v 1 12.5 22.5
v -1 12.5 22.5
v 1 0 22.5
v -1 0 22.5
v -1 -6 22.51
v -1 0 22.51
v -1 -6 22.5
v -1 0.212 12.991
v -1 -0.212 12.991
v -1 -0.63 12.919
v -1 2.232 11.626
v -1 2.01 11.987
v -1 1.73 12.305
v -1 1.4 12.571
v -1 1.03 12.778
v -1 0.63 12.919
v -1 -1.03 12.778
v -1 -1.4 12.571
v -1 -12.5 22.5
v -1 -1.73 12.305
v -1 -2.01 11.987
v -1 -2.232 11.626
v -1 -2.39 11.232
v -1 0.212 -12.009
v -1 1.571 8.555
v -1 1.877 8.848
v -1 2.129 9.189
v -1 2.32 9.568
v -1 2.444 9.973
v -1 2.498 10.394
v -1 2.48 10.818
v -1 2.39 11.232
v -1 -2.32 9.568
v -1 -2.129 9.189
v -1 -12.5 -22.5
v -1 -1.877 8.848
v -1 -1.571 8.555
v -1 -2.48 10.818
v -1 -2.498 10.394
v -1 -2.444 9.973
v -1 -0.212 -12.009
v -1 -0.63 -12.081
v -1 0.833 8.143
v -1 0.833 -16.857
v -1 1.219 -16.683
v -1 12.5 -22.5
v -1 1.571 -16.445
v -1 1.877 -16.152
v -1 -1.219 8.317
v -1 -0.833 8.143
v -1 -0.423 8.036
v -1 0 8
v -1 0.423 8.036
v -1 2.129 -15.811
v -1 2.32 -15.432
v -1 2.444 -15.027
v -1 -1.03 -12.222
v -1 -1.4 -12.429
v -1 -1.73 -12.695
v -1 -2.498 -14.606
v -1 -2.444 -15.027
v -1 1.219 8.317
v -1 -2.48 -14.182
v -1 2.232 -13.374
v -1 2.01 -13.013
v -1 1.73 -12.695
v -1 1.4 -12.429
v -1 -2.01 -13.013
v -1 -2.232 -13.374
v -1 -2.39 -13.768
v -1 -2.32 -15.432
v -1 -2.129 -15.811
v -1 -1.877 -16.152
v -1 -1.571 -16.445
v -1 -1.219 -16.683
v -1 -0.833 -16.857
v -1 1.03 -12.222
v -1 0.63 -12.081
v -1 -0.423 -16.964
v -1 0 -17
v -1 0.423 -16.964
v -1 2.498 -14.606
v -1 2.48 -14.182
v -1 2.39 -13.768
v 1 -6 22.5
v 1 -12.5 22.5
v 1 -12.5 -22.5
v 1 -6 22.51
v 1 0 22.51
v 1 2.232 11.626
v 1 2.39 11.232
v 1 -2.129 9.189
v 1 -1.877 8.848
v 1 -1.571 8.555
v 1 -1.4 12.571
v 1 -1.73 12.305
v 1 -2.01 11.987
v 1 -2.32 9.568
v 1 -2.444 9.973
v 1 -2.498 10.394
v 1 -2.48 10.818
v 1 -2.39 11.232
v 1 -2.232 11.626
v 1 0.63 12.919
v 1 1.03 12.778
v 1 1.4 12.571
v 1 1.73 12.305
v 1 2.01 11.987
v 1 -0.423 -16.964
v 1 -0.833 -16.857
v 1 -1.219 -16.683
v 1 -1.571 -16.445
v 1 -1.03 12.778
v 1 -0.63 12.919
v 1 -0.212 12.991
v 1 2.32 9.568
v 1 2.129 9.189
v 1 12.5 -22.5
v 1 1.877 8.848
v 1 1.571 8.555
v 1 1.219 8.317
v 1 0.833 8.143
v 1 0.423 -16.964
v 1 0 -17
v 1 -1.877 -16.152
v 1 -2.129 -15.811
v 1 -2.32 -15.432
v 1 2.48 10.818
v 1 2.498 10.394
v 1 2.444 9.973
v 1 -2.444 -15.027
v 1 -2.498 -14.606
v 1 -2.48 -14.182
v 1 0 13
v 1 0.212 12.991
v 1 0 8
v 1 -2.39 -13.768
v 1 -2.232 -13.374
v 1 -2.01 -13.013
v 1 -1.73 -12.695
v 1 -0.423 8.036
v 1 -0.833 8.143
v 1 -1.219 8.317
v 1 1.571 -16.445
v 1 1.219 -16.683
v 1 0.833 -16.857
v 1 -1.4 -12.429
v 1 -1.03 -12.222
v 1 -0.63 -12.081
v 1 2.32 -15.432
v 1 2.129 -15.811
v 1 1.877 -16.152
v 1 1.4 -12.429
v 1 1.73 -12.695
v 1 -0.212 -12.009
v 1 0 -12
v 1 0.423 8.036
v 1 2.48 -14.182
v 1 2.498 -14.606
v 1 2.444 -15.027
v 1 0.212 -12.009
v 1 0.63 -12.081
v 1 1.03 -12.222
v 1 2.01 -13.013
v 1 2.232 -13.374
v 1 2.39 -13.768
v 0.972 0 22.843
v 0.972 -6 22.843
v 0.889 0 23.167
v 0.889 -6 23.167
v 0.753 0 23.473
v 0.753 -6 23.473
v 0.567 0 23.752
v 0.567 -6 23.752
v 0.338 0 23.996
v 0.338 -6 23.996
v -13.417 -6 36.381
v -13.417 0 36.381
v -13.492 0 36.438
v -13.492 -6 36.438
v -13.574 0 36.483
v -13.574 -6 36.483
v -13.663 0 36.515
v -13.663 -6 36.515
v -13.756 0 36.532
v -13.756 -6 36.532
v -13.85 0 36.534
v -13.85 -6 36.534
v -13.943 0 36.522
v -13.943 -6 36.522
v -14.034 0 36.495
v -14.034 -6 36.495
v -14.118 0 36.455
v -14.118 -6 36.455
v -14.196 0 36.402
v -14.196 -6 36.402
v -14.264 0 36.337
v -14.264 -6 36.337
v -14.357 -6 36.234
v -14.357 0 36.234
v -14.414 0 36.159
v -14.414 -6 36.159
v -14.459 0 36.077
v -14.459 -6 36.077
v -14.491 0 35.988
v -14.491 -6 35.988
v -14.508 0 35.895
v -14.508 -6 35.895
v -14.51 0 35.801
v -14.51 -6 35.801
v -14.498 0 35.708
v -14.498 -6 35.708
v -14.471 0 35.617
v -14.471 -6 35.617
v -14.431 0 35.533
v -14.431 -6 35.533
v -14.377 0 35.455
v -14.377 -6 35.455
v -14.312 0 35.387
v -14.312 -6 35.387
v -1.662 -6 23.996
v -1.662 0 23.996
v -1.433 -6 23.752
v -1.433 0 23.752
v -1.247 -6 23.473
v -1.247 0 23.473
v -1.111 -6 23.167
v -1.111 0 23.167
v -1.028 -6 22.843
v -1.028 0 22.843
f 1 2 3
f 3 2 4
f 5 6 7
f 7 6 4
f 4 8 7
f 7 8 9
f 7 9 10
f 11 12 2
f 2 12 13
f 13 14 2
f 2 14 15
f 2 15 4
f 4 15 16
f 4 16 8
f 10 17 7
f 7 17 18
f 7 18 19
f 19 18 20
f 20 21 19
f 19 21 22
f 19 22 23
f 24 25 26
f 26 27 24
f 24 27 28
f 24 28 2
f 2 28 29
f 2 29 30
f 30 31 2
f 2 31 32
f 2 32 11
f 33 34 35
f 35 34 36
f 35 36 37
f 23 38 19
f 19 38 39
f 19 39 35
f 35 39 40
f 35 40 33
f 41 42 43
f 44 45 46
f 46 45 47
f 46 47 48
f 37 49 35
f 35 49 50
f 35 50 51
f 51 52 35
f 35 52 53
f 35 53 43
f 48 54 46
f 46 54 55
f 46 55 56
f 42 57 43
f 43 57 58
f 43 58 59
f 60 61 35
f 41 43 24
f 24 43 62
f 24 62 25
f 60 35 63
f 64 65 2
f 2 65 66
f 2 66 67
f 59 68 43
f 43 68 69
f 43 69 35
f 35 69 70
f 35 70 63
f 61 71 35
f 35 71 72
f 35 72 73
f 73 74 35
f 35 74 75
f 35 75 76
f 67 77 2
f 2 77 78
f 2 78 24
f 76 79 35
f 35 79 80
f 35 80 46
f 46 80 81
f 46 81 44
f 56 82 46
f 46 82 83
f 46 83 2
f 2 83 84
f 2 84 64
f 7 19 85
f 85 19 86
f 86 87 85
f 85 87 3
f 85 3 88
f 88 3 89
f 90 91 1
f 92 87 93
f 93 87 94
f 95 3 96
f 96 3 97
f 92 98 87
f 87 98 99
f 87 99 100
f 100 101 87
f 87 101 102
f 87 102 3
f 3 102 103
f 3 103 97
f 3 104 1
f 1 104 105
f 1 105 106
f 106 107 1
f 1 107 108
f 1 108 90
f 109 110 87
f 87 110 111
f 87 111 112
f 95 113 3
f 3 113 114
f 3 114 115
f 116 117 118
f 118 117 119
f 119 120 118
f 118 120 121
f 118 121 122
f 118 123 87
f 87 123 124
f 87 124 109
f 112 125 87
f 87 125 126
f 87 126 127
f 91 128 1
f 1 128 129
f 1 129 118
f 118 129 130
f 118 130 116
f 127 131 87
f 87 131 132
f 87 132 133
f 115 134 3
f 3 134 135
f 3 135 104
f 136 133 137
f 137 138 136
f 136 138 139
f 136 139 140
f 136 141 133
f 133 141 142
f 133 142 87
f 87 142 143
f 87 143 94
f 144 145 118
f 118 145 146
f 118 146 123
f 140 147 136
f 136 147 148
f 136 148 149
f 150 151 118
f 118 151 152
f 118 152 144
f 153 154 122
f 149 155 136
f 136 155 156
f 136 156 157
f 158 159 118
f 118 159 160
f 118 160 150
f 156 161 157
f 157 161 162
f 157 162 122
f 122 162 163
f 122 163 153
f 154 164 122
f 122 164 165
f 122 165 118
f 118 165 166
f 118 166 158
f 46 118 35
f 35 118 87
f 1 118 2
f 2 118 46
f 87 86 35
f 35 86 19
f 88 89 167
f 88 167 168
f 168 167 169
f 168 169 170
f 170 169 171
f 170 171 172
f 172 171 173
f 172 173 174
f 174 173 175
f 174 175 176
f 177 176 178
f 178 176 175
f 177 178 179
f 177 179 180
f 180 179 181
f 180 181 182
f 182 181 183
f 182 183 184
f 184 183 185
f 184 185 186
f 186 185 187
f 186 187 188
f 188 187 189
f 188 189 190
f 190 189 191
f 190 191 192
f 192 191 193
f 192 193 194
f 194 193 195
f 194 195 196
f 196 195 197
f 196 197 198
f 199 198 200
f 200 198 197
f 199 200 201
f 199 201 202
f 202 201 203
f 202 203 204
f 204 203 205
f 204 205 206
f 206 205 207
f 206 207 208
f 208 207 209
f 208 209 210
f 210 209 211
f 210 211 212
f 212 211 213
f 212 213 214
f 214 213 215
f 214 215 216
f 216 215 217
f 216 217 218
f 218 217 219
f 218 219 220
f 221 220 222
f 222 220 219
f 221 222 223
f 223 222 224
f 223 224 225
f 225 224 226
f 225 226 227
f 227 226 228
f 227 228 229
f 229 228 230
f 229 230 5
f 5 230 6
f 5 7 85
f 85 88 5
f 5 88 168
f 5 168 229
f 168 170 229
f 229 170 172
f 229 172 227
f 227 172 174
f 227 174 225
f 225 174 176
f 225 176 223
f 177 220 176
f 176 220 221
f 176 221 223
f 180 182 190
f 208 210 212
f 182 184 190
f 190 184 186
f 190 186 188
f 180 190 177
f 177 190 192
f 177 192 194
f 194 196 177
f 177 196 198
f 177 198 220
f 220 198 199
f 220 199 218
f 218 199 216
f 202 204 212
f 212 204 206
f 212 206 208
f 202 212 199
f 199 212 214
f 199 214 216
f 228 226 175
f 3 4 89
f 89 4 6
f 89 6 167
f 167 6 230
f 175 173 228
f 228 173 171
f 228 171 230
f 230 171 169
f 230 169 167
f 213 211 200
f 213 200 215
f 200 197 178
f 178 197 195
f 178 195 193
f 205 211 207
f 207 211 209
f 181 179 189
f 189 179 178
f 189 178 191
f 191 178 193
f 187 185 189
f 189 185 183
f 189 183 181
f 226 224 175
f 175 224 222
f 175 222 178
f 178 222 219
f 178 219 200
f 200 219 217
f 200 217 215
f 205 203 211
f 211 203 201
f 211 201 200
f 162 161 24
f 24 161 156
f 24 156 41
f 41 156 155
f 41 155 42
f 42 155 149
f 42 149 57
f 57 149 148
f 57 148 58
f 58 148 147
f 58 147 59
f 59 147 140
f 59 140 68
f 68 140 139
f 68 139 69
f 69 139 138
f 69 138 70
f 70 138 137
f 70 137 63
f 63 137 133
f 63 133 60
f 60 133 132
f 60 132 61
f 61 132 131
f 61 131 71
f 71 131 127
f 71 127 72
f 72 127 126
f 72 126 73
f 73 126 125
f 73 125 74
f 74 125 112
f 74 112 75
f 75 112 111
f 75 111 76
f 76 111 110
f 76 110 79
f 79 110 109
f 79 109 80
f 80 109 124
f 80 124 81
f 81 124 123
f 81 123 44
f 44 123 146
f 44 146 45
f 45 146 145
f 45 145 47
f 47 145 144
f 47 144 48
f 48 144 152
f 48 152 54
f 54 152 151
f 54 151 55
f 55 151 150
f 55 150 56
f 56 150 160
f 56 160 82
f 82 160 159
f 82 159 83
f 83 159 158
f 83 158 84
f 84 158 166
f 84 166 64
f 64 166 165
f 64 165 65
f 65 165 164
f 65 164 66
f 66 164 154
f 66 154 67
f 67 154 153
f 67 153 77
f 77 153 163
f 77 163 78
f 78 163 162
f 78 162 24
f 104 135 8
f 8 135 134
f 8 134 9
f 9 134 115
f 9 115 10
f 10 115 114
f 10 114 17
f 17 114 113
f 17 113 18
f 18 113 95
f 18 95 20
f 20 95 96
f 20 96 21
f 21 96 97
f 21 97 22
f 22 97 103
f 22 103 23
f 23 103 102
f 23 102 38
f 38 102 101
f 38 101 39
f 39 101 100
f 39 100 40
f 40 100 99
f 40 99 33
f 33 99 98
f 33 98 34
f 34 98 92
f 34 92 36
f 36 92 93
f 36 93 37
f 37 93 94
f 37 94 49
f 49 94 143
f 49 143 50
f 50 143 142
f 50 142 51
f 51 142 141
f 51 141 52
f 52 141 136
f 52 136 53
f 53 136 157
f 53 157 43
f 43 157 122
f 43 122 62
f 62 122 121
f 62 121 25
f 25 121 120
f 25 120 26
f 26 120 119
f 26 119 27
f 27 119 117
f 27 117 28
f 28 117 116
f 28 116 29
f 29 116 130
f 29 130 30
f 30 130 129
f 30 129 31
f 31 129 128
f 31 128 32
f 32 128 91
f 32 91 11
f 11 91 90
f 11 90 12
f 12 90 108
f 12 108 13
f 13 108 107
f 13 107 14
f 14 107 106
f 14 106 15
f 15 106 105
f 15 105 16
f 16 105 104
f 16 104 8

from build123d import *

# Parameters (mm, degrees)
SKETCH1_W           = 2
SKETCH1_H           = 45
BOSS_EXTRUDE1_DEPTH = 12.5
BOSS_EXTRUDE2_START = -12.5
BOSS_EXTRUDE2_DEPTH = 6
SKETCH3_R           = 2.5
CUT_EXTRUDE1_DEPTH  = 3


with BuildPart() as part:
    # Sketch1 → Boss-Extrude1 (new, symmetric)
    with BuildSketch(Plane(origin=(0, 0, 0), x_dir=(1, 0, 0), z_dir=(0, 1, 0))):
        Rectangle(SKETCH1_W, SKETCH1_H)
    extrude(amount=BOSS_EXTRUDE1_DEPTH, both=True)

    # Sketch2 → Boss-Extrude2 (add)
    with BuildSketch(Plane(origin=(0, 12.5, 0), x_dir=(1, 0, 0), z_dir=(0, 1, 0)).offset(BOSS_EXTRUDE2_START)):
        with BuildLine():
            Line((1, -22.5), (1, -22.509542629))
            ThreePointArc((1, -22.509542629), (0.827090915, -23.323015916), (0.338261213, -23.99583228))
            Line((0.338261213, -23.99583228), (-13.417009614, -36.381133763))
            ThreePointArc((-13.417009614, -36.381133763), (-13.849889552, -36.534424589), (-14.264374873, -36.336725232))
            Line((-14.264374873, -36.336725232), (-14.356889682, -36.233977127))
            ThreePointArc((-14.356889682, -36.233977127), (-14.510180508, -35.80109719), (-14.312481151, -35.386611868))
            Line((-14.312481151, -35.386611868), (-1.661738787, -23.99583228))
            ThreePointArc((-1.661738787, -23.99583228), (-1.172909085, -23.323015916), (-1, -22.509542629))
            Line((-1, -22.509542629), (-1, -22.5))
            Line((-1, -22.5), (1, -22.5))
        make_face()
    extrude(amount=-BOSS_EXTRUDE2_DEPTH)

    # Sketch3 → Cut-Extrude1 (cut, symmetric)
    with BuildSketch(Plane(origin=(1, 0, 0), x_dir=(0, 0, -1), z_dir=(1, 0, 0))):
        with Locations((-10.5, 0)):
            Circle(SKETCH3_R)
        with Locations((14.5, 0)):
            Circle(SKETCH3_R)
    extrude(amount=CUT_EXTRUDE1_DEPTH, both=True, mode=Mode.SUBTRACT)


solid = part.part
